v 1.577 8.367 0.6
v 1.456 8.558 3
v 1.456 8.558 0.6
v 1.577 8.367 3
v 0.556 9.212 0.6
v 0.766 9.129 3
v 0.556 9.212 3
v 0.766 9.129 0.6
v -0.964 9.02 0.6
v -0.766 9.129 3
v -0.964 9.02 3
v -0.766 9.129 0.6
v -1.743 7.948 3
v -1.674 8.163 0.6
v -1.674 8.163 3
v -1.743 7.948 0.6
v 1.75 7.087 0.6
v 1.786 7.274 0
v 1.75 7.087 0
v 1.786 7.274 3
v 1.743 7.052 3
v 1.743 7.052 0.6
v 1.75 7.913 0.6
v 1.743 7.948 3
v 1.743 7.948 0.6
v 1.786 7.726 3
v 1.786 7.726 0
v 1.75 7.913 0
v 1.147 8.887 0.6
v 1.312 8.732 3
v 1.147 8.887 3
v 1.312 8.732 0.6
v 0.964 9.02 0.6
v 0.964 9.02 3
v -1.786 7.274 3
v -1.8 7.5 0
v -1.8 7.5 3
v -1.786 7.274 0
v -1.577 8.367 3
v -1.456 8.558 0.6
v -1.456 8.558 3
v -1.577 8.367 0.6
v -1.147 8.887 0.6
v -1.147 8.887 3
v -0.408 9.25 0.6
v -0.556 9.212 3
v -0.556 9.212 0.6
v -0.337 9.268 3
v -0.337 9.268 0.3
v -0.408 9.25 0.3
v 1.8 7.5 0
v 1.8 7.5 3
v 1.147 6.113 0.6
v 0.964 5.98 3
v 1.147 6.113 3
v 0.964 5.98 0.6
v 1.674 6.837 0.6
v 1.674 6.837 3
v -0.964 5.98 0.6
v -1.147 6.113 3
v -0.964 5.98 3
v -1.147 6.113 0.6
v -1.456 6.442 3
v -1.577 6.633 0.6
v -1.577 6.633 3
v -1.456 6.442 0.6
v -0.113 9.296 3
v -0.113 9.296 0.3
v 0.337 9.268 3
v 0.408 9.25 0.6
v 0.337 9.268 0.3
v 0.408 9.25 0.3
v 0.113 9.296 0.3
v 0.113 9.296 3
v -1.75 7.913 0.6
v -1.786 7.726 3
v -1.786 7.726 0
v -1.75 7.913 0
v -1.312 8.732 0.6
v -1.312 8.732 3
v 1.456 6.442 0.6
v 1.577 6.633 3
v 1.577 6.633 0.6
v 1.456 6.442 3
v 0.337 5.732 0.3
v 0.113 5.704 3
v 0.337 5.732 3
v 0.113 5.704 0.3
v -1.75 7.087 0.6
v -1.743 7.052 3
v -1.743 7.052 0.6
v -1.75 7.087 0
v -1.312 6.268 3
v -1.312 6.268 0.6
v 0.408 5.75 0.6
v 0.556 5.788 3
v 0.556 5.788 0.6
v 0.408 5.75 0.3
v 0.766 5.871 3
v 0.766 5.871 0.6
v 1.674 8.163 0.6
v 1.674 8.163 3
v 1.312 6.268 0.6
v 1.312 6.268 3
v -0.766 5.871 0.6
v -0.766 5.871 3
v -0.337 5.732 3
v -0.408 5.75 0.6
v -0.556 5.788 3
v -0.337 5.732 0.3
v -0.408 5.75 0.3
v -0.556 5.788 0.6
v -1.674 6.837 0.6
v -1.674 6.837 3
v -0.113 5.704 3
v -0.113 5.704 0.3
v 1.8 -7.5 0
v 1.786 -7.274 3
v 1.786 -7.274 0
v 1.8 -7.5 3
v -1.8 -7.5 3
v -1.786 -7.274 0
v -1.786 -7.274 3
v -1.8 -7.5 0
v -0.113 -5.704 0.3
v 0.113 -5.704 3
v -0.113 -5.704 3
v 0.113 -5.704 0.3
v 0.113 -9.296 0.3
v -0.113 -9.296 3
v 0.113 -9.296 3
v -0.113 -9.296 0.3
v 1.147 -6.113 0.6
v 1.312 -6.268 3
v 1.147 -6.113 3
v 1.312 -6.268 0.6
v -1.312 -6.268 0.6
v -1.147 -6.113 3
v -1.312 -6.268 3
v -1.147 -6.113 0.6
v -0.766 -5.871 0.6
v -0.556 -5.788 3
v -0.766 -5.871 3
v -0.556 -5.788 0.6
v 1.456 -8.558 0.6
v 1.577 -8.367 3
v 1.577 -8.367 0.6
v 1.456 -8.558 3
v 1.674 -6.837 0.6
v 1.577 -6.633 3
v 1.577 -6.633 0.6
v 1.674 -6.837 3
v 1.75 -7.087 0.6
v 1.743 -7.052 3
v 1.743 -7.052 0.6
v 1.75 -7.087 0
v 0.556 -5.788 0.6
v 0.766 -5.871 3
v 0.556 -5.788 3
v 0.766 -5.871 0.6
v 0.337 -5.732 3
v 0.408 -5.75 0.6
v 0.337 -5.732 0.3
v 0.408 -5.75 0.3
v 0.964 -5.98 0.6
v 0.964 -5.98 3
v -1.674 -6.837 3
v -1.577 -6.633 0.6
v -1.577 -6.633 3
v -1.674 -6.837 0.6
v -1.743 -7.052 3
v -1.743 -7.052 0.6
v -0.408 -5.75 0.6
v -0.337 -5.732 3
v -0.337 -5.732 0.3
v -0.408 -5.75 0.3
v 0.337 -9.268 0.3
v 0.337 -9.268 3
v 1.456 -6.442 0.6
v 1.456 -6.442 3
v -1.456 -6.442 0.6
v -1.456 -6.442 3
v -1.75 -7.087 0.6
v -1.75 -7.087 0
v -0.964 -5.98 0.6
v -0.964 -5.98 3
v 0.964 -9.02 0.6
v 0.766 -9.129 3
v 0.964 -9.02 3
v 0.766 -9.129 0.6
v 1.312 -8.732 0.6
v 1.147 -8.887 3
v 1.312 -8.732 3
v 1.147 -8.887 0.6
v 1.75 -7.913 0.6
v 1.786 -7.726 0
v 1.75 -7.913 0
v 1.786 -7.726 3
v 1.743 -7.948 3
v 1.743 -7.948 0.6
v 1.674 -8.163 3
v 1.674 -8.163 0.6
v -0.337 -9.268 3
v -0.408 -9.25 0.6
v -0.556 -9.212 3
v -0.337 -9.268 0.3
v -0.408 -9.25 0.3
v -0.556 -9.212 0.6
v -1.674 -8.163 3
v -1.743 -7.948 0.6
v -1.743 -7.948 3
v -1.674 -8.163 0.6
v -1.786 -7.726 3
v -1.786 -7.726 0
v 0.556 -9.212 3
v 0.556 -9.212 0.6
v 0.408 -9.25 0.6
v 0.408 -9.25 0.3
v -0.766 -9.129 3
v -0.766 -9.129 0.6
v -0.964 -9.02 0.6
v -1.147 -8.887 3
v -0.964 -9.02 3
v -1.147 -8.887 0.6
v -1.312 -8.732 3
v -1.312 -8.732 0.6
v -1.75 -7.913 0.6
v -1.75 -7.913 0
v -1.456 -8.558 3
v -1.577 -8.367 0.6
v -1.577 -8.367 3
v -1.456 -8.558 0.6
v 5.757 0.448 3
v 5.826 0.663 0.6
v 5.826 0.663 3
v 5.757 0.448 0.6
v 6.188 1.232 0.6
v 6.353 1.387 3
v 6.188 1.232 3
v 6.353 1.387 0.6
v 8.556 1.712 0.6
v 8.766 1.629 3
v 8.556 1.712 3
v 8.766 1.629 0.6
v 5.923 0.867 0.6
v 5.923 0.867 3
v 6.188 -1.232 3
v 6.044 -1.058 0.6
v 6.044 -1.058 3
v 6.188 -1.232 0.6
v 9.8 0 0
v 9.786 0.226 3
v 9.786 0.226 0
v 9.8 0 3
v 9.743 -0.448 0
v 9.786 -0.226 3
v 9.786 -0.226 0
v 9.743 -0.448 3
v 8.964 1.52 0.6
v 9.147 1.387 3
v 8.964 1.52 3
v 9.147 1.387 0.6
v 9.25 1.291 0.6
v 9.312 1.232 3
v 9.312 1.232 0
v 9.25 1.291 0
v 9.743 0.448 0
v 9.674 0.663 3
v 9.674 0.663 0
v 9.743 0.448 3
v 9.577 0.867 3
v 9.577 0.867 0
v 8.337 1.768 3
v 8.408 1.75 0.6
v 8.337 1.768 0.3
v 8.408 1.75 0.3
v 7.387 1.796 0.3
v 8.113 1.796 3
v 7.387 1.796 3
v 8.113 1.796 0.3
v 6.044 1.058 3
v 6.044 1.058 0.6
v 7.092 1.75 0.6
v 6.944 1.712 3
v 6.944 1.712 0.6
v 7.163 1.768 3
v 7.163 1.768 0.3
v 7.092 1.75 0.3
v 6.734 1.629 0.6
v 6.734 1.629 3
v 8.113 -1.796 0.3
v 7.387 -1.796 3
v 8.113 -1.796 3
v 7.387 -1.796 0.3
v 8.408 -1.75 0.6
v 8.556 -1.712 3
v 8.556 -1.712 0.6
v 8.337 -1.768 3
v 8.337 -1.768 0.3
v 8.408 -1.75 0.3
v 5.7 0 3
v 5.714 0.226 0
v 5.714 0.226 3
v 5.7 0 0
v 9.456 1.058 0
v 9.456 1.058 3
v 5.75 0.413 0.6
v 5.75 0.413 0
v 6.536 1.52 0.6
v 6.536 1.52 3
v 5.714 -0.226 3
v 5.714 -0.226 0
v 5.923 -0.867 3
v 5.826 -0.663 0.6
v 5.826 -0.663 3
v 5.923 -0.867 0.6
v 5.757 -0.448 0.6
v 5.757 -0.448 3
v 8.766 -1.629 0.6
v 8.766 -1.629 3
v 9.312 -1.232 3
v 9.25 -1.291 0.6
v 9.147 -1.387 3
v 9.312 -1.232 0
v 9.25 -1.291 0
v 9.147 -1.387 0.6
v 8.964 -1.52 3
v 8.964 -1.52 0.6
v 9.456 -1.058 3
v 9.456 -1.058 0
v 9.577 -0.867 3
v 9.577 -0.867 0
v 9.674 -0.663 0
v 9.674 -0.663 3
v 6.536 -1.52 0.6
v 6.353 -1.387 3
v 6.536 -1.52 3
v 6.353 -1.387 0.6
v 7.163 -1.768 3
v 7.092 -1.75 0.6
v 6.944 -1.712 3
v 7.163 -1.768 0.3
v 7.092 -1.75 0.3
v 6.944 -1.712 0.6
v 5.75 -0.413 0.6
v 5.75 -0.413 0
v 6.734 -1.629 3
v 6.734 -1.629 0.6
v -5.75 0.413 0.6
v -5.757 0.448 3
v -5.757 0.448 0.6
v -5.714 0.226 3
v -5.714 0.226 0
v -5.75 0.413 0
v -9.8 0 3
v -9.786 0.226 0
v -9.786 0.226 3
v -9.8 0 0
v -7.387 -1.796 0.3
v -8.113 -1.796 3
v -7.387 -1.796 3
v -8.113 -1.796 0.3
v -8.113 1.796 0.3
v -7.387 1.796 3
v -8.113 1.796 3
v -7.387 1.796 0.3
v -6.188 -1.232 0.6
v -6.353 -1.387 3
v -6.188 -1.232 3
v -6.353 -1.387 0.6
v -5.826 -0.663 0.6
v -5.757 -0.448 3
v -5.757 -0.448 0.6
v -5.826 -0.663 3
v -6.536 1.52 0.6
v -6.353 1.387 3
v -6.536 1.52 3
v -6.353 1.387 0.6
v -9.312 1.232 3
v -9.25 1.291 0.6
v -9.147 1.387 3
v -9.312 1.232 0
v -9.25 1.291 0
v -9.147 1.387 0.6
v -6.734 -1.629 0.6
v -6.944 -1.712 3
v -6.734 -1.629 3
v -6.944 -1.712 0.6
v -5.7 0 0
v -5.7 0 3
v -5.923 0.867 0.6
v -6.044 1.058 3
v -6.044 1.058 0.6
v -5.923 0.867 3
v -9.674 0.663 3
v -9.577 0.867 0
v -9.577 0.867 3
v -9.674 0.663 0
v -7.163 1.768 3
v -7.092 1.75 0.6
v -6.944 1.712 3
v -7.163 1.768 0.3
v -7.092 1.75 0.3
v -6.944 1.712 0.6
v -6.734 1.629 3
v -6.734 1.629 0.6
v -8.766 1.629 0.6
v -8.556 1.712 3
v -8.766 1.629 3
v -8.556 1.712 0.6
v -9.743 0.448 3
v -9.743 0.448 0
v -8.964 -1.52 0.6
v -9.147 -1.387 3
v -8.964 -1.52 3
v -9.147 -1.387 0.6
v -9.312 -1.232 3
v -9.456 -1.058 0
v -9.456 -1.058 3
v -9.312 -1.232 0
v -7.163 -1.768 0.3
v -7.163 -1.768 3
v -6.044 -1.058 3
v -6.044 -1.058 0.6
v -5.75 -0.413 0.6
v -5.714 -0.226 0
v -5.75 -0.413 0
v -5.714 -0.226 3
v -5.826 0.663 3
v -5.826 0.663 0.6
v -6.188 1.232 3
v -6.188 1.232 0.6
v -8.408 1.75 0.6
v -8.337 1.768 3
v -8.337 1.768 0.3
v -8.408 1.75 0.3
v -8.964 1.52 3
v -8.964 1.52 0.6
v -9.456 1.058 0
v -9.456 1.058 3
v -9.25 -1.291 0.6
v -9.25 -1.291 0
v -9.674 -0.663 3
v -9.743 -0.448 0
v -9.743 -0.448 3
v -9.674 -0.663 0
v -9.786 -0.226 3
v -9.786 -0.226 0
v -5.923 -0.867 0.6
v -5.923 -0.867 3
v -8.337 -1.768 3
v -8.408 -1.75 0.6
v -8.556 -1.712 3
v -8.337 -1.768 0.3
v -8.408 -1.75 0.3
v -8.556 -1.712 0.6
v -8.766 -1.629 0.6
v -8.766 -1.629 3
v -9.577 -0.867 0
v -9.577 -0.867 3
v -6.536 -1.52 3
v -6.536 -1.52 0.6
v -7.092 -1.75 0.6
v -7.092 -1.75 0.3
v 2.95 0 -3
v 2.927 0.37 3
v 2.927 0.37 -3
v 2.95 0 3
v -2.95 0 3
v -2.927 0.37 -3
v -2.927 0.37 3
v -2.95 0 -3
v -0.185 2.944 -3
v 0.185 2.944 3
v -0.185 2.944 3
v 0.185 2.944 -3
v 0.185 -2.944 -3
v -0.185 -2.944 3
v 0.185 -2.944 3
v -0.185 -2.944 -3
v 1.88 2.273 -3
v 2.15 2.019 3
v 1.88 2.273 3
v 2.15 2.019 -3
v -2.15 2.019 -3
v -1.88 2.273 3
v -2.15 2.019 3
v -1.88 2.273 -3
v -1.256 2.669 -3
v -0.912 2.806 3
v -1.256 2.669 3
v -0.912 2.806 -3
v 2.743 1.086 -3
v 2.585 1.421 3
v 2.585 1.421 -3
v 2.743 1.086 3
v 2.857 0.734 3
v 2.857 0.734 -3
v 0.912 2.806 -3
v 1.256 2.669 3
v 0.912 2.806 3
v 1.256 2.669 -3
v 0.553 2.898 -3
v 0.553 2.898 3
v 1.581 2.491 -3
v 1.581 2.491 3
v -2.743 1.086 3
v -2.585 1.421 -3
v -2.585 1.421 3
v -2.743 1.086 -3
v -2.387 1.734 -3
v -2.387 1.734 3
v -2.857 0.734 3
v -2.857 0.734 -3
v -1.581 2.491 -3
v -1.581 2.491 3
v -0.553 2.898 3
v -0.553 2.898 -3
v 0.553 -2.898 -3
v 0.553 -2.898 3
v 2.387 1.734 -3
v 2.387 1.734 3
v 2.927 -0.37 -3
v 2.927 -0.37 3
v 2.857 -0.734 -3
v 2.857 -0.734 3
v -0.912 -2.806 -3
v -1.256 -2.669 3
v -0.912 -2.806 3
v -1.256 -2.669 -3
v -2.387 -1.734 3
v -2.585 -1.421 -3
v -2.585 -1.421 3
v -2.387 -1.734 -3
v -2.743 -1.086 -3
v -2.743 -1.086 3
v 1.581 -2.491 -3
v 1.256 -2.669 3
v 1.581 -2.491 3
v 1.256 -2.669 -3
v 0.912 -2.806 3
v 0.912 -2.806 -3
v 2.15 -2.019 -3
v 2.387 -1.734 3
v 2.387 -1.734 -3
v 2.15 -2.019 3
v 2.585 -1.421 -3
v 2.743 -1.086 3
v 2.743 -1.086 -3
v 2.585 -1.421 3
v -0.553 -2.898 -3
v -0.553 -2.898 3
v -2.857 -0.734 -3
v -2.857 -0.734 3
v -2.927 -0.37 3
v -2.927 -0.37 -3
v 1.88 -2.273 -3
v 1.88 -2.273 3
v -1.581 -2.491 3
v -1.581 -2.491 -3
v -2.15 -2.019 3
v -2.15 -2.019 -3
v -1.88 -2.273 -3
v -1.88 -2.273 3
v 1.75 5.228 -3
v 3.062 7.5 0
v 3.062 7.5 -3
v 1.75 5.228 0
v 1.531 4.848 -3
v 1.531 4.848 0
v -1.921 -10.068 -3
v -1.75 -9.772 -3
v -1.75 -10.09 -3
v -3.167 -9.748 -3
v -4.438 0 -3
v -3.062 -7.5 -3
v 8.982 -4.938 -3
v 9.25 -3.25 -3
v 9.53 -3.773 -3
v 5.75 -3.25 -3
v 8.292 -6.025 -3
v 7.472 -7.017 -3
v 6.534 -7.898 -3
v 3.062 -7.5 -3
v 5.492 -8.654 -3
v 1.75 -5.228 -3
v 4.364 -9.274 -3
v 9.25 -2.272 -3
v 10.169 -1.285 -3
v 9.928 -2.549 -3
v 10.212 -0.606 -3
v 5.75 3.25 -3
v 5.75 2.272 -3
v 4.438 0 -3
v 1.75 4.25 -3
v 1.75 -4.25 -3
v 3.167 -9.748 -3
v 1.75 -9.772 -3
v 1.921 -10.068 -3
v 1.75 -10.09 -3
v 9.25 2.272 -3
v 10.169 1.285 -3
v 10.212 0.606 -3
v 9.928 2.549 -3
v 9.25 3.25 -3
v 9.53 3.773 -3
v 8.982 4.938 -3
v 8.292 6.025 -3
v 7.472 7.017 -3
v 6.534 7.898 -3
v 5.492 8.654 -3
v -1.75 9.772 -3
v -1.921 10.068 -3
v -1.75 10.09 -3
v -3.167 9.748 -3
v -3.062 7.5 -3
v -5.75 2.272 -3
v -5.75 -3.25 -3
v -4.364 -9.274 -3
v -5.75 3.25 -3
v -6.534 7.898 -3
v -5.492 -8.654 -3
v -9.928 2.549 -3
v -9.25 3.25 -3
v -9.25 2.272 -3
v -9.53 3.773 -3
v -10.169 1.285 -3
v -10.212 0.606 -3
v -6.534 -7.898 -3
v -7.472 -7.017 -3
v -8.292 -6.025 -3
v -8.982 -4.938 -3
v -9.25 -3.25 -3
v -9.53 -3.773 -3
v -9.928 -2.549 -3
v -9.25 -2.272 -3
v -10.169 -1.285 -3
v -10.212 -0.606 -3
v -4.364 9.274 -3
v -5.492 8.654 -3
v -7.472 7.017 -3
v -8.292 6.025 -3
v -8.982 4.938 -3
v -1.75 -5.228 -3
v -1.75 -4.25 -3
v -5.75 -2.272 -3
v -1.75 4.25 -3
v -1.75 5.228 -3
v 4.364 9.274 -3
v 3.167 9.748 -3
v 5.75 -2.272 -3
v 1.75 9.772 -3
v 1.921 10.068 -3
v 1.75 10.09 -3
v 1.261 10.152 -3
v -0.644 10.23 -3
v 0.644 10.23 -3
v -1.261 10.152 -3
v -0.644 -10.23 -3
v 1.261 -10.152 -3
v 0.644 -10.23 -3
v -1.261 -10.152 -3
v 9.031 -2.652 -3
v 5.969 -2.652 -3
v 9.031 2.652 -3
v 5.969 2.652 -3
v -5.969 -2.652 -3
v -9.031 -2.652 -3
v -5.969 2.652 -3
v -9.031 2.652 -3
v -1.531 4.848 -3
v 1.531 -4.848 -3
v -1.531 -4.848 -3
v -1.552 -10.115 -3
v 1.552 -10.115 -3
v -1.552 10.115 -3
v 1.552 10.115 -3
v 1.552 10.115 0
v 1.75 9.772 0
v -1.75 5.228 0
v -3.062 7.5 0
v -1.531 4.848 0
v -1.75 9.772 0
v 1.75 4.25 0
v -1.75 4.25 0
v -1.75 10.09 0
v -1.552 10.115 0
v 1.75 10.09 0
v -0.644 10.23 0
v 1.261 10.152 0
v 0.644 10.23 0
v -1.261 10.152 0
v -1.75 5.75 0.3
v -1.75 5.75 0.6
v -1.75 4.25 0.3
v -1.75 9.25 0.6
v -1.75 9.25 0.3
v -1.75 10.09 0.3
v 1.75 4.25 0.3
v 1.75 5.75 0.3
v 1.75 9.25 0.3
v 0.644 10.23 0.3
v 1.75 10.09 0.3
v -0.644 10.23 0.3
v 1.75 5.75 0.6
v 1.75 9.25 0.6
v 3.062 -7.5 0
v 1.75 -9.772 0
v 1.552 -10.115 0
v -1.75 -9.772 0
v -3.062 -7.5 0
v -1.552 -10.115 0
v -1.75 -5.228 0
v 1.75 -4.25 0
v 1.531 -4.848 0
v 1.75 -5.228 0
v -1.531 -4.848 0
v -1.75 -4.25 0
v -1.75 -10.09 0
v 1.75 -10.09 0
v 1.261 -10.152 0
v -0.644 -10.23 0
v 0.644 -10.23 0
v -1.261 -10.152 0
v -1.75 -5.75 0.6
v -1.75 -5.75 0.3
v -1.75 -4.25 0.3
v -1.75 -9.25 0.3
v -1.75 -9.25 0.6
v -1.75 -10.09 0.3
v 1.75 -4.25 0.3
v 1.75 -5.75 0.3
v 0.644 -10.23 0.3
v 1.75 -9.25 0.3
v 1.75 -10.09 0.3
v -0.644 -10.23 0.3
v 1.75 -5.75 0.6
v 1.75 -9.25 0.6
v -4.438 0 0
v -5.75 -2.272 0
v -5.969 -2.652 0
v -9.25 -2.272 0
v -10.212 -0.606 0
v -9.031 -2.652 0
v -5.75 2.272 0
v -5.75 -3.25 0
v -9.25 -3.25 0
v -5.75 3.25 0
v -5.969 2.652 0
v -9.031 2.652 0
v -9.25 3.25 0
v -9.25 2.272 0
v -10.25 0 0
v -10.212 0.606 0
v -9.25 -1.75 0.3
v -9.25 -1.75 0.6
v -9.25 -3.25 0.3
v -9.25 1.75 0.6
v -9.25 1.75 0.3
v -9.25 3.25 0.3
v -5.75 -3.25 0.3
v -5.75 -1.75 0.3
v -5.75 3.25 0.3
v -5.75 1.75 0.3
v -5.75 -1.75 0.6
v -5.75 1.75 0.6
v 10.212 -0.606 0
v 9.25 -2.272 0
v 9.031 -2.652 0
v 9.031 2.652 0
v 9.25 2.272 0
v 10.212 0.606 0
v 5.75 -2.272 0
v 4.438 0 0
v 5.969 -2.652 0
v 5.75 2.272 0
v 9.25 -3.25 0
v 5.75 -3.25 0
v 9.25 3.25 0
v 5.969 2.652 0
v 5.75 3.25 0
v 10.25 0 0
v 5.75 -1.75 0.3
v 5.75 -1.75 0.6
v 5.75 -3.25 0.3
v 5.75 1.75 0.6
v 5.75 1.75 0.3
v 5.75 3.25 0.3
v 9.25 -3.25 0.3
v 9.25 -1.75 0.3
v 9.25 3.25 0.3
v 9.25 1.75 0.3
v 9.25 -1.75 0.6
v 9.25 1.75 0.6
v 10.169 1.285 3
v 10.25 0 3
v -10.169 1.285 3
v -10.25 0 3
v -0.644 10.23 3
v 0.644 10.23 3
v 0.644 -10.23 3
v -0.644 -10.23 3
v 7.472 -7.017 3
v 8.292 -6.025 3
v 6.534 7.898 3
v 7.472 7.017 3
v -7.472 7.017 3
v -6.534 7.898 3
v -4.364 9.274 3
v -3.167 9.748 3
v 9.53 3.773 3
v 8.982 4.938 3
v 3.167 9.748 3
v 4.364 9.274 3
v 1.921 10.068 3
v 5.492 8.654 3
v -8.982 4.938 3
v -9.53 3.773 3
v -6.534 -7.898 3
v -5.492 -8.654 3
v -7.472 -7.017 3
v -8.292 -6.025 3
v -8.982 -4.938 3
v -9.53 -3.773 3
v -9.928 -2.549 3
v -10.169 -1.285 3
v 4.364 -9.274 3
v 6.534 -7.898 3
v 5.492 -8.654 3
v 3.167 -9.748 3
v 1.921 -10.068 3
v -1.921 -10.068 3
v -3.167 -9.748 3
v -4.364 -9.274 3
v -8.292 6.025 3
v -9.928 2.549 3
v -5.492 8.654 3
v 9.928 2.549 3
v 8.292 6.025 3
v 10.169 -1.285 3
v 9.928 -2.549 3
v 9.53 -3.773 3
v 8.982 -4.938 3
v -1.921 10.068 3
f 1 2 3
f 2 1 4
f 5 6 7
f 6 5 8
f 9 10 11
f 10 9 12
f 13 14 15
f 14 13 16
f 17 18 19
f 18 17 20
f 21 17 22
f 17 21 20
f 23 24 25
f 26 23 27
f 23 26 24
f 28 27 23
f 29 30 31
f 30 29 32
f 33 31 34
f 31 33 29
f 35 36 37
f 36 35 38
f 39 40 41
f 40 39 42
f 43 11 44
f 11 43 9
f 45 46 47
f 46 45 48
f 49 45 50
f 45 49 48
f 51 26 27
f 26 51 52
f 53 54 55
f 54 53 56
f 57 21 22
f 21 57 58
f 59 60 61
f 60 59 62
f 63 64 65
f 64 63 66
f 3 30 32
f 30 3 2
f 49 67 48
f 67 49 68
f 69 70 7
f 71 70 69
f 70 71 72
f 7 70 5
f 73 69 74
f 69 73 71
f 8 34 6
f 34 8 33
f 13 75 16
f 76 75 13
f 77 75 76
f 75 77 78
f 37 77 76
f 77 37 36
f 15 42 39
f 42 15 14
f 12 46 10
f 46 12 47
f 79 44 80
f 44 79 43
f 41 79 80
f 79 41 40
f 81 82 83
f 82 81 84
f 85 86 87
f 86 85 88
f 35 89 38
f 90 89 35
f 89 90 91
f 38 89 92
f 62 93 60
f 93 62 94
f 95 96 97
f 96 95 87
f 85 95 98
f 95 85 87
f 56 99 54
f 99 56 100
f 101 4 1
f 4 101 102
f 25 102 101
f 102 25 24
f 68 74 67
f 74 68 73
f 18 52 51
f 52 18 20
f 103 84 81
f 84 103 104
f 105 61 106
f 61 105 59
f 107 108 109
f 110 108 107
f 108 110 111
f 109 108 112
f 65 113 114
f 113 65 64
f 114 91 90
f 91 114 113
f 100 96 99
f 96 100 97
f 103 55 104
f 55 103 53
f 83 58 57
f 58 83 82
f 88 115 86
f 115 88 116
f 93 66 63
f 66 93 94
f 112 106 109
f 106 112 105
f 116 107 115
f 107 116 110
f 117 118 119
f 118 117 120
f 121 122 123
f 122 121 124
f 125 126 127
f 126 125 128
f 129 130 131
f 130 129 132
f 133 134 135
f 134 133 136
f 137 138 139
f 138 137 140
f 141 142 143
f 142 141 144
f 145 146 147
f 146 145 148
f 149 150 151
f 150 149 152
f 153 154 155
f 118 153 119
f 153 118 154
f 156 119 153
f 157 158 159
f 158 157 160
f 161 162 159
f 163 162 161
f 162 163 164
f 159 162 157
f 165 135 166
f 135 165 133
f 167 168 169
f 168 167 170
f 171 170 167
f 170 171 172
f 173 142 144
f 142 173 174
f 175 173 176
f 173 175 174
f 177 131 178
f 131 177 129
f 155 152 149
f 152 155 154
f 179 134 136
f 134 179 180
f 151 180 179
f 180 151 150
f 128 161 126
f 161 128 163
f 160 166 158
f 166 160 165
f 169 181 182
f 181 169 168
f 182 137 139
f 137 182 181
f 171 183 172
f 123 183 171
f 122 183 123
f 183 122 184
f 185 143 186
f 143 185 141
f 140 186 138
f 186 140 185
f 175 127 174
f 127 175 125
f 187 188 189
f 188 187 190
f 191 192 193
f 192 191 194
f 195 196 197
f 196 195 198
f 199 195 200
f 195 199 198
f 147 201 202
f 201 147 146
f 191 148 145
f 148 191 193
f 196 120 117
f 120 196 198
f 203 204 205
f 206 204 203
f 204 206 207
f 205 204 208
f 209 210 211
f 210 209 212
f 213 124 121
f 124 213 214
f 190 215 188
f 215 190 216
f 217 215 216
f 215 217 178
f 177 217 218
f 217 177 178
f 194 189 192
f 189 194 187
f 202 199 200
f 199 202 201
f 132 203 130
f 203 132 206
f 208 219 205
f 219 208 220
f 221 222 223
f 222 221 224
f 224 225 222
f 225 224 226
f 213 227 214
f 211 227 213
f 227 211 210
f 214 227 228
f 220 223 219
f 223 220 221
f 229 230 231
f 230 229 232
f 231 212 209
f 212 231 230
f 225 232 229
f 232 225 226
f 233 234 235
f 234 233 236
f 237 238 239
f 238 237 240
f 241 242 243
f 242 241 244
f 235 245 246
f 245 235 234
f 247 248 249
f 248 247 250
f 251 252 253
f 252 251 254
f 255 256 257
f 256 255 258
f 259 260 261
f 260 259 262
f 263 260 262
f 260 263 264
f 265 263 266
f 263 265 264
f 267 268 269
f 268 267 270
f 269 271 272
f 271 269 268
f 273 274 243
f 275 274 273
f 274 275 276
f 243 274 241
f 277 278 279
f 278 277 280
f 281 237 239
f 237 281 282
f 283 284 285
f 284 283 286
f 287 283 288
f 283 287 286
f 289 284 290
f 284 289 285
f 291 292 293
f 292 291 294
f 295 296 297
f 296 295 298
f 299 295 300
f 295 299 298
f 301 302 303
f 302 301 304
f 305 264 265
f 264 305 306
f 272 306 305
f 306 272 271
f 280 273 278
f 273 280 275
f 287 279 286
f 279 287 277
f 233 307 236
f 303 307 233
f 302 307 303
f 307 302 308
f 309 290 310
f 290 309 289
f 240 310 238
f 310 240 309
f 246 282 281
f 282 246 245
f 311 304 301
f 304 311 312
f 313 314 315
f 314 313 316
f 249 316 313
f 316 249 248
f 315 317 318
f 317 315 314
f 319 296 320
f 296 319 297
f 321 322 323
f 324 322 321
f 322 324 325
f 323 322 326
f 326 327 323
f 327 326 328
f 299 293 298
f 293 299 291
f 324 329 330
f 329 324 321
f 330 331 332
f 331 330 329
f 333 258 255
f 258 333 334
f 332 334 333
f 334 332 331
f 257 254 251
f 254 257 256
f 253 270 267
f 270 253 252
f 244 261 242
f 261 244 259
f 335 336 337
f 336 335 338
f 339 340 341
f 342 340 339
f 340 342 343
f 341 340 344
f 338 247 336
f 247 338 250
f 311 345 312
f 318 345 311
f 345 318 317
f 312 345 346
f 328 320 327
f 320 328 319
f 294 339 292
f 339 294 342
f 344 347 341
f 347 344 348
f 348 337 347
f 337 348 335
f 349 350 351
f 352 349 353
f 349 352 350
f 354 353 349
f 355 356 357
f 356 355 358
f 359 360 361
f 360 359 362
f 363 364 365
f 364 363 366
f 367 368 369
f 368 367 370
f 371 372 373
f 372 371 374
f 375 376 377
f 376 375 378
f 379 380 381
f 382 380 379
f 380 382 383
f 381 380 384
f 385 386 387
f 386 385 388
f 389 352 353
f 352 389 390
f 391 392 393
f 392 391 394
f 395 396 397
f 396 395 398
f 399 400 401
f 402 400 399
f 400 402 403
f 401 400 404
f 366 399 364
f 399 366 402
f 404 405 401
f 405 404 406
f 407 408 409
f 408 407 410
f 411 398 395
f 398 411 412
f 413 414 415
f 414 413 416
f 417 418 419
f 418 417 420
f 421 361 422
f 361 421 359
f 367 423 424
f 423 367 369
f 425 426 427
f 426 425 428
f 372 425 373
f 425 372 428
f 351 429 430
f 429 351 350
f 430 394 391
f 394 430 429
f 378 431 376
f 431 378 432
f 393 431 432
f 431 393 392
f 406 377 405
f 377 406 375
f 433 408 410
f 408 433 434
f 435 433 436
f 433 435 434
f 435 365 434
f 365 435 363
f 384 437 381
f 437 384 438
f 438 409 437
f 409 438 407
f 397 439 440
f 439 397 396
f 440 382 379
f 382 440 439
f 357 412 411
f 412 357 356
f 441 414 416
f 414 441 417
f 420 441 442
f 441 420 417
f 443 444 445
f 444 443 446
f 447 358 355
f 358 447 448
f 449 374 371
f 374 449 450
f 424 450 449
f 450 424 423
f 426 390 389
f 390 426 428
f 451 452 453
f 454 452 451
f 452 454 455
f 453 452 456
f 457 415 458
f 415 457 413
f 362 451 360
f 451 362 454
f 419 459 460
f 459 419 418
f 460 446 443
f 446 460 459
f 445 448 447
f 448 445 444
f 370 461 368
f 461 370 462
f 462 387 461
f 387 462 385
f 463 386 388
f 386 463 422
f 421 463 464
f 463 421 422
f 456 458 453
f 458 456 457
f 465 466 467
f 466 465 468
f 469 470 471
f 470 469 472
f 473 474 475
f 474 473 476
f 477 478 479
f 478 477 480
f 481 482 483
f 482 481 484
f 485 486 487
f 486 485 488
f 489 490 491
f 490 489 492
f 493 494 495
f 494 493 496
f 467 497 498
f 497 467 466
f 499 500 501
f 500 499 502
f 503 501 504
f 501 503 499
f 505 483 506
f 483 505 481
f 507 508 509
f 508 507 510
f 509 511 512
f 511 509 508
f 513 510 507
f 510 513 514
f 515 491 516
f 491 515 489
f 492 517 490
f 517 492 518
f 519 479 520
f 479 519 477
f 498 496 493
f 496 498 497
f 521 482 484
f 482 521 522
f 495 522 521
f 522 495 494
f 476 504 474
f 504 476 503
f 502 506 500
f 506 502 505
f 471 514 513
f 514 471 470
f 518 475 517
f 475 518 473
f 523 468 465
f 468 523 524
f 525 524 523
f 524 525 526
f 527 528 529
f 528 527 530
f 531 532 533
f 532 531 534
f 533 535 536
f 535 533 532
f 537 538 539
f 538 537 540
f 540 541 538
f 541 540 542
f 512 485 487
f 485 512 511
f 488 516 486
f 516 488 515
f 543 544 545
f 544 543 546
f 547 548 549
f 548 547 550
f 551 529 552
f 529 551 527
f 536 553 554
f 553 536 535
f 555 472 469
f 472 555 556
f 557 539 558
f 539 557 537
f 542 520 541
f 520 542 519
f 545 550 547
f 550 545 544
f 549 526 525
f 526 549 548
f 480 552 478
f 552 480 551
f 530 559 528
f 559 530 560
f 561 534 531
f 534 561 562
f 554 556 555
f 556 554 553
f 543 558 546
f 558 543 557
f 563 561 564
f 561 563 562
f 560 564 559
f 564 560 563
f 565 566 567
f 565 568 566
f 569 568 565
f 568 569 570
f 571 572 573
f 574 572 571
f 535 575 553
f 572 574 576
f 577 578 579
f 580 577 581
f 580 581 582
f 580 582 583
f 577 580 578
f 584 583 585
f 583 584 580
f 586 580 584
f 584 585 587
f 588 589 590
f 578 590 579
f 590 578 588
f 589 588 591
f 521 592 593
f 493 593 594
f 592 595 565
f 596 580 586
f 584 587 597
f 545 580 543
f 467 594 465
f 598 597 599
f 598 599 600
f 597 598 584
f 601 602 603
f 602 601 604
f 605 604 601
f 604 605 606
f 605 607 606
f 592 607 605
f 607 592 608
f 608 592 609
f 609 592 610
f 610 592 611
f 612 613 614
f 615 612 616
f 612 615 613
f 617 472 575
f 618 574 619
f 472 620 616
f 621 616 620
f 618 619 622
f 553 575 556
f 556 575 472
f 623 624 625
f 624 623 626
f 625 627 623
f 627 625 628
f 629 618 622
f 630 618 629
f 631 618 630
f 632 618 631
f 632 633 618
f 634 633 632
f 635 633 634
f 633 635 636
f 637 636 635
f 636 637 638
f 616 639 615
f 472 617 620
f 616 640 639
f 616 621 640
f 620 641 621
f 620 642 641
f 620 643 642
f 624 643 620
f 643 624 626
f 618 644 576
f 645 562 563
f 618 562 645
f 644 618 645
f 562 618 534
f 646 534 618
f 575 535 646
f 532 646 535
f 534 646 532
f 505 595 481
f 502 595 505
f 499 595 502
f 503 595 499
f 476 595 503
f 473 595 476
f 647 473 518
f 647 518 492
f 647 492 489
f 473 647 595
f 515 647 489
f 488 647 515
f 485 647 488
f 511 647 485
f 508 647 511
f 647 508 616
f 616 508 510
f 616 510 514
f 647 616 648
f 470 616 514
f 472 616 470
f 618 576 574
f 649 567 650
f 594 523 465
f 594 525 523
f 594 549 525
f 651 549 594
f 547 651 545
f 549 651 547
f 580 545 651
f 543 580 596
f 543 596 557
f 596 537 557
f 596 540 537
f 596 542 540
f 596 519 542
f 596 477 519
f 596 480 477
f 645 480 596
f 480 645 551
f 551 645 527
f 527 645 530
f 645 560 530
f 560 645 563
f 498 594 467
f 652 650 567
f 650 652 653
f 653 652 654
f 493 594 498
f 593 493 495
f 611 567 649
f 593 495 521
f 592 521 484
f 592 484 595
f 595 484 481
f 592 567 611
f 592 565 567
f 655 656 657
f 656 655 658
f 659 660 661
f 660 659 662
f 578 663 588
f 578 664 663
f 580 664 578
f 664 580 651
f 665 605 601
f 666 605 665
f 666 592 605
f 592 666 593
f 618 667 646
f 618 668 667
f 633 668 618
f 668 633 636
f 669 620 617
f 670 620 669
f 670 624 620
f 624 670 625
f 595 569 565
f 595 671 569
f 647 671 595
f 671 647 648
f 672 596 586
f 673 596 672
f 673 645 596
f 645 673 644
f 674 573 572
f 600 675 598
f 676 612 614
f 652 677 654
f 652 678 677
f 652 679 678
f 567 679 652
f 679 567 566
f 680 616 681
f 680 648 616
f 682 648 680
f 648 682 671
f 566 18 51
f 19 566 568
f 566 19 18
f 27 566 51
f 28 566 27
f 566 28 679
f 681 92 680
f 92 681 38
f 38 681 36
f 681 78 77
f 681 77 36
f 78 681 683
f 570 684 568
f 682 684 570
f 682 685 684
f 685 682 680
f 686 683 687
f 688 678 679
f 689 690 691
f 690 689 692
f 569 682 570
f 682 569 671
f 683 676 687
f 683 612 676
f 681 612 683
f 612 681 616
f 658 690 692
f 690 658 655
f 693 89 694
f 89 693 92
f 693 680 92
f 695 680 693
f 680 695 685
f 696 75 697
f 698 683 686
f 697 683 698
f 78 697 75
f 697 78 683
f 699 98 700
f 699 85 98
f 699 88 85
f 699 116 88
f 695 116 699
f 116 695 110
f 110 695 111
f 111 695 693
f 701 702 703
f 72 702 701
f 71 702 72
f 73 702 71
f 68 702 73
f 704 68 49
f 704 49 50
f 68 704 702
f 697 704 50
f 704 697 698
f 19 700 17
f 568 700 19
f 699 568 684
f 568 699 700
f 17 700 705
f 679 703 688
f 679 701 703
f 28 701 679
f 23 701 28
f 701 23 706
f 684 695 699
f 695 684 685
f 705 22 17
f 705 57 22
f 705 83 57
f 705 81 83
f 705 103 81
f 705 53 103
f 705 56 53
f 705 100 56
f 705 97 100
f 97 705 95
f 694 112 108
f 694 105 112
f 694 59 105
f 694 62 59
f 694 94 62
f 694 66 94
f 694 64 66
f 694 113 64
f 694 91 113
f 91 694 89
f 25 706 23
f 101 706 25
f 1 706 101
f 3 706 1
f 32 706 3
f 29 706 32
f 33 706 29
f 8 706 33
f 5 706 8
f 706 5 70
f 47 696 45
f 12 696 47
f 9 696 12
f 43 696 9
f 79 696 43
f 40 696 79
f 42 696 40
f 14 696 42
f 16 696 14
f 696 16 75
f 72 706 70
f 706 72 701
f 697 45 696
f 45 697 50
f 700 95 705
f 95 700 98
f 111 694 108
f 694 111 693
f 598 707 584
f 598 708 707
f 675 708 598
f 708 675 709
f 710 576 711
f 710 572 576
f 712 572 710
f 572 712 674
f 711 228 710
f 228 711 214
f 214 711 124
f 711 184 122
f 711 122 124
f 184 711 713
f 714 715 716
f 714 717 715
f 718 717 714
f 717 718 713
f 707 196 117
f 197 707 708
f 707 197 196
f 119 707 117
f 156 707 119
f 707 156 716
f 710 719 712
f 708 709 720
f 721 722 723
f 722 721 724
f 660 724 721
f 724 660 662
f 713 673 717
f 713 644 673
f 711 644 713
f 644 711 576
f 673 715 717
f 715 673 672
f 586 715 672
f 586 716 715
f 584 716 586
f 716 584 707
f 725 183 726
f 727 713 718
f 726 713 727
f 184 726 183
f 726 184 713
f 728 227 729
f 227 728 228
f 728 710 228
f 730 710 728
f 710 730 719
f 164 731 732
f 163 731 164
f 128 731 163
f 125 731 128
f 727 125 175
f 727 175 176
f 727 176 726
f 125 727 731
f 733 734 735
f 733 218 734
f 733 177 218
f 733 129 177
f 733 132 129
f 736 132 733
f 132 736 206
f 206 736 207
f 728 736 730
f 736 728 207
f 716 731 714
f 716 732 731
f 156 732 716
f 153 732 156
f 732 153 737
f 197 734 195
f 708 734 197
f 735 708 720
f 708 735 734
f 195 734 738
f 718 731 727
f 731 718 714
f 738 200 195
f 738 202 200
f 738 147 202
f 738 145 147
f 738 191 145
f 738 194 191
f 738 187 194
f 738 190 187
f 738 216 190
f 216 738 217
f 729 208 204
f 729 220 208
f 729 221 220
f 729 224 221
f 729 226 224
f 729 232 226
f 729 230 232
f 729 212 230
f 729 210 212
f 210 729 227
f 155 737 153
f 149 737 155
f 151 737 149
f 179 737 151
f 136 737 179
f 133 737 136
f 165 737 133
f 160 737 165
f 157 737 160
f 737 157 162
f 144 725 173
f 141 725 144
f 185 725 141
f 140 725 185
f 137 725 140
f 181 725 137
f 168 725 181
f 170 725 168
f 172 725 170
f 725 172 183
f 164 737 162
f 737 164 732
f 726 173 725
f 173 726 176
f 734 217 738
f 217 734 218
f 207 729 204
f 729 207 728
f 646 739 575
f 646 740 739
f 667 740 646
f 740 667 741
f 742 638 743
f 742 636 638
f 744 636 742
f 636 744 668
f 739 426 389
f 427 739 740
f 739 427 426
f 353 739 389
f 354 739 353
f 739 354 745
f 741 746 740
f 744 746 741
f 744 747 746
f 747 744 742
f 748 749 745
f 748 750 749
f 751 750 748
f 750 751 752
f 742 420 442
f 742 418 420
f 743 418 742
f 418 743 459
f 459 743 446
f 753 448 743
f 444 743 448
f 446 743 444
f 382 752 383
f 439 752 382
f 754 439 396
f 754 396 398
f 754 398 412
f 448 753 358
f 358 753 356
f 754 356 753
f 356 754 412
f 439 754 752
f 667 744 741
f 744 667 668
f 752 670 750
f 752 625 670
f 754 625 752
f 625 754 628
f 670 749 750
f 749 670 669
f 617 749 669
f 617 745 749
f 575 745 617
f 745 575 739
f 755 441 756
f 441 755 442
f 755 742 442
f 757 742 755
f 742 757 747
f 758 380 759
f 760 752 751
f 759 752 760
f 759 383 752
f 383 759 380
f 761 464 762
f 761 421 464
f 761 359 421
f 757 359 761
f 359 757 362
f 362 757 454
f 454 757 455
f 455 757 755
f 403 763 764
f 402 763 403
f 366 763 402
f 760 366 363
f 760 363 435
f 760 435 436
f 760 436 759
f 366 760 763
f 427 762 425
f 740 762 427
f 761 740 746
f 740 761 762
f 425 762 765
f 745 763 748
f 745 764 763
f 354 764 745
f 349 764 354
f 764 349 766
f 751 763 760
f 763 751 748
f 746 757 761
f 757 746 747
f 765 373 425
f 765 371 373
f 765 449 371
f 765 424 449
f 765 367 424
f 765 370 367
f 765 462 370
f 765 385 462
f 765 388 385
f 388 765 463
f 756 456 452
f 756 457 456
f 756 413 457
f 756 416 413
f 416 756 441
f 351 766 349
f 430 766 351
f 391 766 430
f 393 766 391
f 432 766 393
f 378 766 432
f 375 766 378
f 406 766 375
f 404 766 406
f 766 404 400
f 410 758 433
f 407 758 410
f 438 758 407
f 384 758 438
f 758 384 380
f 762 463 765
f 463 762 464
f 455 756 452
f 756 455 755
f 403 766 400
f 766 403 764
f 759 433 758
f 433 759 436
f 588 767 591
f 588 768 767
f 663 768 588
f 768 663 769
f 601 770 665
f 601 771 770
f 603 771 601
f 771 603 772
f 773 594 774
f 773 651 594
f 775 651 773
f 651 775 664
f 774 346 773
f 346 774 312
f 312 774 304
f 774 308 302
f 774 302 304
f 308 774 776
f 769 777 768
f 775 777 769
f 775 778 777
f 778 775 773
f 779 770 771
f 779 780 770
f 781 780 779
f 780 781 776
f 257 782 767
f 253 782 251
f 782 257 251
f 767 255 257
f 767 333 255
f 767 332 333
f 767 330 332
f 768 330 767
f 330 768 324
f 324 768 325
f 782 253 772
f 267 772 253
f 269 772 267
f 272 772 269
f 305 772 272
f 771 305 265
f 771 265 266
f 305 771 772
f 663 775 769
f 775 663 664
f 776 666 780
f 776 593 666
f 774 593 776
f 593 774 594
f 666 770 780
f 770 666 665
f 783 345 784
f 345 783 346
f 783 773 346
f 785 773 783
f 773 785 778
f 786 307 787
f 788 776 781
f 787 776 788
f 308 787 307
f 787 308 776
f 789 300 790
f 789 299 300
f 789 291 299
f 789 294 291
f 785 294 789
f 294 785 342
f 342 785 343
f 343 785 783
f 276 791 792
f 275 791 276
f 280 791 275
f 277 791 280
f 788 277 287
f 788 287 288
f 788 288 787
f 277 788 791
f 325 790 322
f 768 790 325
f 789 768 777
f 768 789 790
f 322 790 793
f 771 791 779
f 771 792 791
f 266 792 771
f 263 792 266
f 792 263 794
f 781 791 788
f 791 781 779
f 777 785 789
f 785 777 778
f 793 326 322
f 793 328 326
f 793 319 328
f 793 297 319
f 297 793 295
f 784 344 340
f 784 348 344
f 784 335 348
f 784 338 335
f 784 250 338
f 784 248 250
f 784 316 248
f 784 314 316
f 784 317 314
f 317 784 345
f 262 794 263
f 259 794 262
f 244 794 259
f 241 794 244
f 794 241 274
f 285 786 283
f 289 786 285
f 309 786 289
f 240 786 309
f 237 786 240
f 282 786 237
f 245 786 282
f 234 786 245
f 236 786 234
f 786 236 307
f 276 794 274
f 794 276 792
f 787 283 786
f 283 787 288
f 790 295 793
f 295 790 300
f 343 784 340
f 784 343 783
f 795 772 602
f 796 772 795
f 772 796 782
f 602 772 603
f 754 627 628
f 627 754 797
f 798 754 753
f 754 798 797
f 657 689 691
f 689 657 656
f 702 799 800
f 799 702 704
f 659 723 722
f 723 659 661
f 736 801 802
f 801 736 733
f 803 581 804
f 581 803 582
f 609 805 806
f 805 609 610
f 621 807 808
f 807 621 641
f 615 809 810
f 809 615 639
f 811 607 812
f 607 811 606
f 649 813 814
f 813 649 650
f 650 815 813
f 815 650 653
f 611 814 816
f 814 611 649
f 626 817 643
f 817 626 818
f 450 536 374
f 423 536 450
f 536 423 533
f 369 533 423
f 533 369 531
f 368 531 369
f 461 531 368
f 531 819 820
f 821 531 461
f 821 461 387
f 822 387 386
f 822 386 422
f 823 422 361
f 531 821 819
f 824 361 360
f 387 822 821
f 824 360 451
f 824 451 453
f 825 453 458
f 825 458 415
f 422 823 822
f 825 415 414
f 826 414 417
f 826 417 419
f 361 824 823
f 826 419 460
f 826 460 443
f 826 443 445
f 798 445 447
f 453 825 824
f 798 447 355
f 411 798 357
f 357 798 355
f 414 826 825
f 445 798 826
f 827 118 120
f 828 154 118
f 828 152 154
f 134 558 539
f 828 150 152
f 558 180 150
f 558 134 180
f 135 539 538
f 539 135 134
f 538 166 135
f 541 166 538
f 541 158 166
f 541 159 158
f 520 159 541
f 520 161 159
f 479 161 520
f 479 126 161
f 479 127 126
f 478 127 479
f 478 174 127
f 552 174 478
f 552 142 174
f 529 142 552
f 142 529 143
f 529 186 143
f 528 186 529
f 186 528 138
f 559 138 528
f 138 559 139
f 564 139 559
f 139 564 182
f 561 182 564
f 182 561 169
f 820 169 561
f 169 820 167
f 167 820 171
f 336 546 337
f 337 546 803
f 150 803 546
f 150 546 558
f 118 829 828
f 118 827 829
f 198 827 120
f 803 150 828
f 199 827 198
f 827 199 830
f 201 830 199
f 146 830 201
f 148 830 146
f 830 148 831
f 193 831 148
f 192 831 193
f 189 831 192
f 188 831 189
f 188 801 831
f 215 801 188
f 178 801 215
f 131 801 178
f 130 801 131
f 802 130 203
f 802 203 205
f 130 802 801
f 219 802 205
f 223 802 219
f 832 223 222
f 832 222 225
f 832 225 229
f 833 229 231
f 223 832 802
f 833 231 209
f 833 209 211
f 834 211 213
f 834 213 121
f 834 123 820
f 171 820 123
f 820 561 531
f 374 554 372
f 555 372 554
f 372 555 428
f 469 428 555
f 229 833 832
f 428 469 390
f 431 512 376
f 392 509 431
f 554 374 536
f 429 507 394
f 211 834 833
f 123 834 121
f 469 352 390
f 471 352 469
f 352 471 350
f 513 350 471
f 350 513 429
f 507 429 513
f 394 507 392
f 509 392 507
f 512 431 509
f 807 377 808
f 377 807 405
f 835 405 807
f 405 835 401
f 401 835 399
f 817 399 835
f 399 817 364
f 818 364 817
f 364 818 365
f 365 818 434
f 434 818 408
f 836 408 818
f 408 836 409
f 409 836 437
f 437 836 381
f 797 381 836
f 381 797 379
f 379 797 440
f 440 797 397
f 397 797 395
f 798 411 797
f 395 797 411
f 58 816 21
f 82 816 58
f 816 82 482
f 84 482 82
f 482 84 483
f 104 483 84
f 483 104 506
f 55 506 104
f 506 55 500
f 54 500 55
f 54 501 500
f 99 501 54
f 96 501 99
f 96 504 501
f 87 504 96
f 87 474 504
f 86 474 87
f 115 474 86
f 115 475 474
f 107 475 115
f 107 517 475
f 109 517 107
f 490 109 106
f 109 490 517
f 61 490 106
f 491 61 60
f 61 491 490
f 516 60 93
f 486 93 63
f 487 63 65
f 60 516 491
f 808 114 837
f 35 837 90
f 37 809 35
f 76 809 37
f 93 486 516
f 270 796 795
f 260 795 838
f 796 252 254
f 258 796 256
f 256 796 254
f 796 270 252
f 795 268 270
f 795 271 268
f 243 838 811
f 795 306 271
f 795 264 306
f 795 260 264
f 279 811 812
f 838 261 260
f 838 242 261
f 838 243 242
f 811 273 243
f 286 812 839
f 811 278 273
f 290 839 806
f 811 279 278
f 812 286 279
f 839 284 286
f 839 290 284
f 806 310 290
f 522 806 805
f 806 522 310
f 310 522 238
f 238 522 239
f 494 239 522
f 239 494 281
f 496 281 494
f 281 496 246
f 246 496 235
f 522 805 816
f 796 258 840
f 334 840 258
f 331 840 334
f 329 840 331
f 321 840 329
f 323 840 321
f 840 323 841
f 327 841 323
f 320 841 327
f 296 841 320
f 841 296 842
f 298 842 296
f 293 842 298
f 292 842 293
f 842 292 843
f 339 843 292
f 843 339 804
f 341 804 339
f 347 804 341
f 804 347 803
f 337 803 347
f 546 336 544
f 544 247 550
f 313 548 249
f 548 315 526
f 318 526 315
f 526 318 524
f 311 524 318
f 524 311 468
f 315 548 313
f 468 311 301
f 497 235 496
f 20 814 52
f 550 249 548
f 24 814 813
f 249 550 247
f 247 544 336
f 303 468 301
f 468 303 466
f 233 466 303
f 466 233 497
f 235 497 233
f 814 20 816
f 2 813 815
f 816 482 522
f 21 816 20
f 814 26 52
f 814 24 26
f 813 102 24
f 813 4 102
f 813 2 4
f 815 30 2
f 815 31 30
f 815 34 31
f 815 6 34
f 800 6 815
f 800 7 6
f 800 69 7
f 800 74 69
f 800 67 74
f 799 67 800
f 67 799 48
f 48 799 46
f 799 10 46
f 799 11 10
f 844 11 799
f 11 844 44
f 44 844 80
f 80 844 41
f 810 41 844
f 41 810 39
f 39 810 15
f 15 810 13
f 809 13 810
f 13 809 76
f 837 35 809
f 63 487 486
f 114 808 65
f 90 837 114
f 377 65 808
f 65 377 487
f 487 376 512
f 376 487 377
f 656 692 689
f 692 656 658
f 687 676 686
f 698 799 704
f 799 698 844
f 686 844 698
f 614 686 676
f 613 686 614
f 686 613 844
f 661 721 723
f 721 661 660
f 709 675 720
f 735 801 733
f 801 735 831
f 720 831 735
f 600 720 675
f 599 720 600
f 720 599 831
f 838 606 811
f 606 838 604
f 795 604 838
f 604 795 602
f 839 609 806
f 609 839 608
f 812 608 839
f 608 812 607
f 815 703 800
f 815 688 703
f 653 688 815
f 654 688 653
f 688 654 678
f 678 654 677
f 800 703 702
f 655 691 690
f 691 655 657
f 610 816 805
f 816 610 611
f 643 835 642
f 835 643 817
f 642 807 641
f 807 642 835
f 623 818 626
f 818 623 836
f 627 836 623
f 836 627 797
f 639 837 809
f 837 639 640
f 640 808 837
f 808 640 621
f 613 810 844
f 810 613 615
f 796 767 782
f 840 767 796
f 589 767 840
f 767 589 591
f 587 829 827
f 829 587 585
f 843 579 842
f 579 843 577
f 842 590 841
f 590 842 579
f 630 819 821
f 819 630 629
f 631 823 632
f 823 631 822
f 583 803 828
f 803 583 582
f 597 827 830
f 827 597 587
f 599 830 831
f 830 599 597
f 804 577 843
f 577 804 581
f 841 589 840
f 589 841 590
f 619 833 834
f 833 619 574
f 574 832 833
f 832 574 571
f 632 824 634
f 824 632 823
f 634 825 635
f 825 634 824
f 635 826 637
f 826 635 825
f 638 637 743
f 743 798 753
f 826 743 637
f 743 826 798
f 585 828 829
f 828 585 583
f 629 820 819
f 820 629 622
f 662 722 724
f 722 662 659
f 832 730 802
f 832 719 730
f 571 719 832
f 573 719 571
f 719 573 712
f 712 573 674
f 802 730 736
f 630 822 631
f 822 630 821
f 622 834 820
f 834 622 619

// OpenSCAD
$fn = 50;


difference() {
	union() {
		translate(v = [0, 0, -3.0000000000]) {
			rotate(a = [0, 0, 0]) {
				cylinder(h = 6, r = 10.2500000000);
			}
		}
	}
	union() {
		translate(v = [0, 7.5000000000, -125.0000000000]) {
			rotate(a = [0, 0, 0]) {
				cylinder(h = 250, r = 1.8000000000);
			}
		}
		translate(v = [0, -7.5000000000, -125.0000000000]) {
			rotate(a = [0, 0, 0]) {
				cylinder(h = 250, r = 1.8000000000);
			}
		}
		translate(v = [7.7500000000, 0, -125.0000000000]) {
			rotate(a = [0, 0, 0]) {
				hull() {
					translate(v = [0.2500000000, 0, 0]) {
						rotate(a = [0, 0, 0]) {
							translate(v = [0, 0, 0]) {
								rotate(a = [0, 0, 0]) {
									cylinder(h = 250, r = 1.8000000000);
								}
							}
						}
					}
					translate(v = [-0.2500000000, 0, 0]) {
						rotate(a = [0, 0, 0]) {
							translate(v = [0, 0, 0]) {
								rotate(a = [0, 0, 0]) {
									cylinder(h = 250, r = 1.8000000000);
								}
							}
						}
					}
				}
			}
		}
		translate(v = [-7.7500000000, 0, -125.0000000000]) {
			rotate(a = [0, 0, 0]) {
				hull() {
					translate(v = [0.2500000000, 0, 0]) {
						rotate(a = [0, 0, 0]) {
							translate(v = [0, 0, 0]) {
								rotate(a = [0, 0, 0]) {
									cylinder(h = 250, r = 1.8000000000);
								}
							}
						}
					}
					translate(v = [-0.2500000000, 0, 0]) {
						rotate(a = [0, 0, 0]) {
							translate(v = [0, 0, 0]) {
								rotate(a = [0, 0, 0]) {
									cylinder(h = 250, r = 1.8000000000);
								}
							}
						}
					}
				}
			}
		}
		translate(v = [0, 0, -125.0000000000]) {
			rotate(a = [0, 0, 0]) {
				cylinder(h = 250, r = 2.9500000000);
			}
		}
		translate(v = [0, 7.5000000000, -3.0000000000]) {
			rotate(a = [0, 0, 0]) {
				translate(v = [0, 0, 0]) {
					rotate(a = [0, 0, 0]) {
						linear_extrude(height = 3) {
							polygon(points = [[3.0620000000, 0.0000000000], [1.5310000000, 2.6517697864], [-1.5310000000, 2.6517697864], [-3.0620000000, 0.0000000000], [-1.5310000000, -2.6517697864], [1.5310000000, -2.6517697864]]);
						}
					}
				}
			}
		}
		translate(v = [-1.7500000000, 4.2500000000, 0.0000000000]) {
			rotate(a = [0, 0, 0]) {
				cube(size = [3.5000000000, 6.5000000000, 0.3000000000]);
			}
		}
		translate(v = [-1.7500000000, 5.7500000000, 0.3000000000]) {
			rotate(a = [0, 0, 0]) {
				cube(size = [3.5000000000, 3.5000000000, 0.3000000000]);
			}
		}
		translate(v = [-1.7500000000, 4.2500000000, -3.3000000000]) {
			rotate(a = [0, 0, 0]) {
				cube(size = [3.5000000000, 6.5000000000, 0.3000000000]);
			}
		}
		translate(v = [-1.7500000000, 5.7500000000, -3.6000000000]) {
			rotate(a = [0, 0, 0]) {
				cube(size = [3.5000000000, 3.5000000000, 0.3000000000]);
			}
		}
		translate(v = [0, -7.5000000000, -3.0000000000]) {
			rotate(a = [0, 0, 0]) {
				translate(v = [0, 0, 0]) {
					rotate(a = [0, 0, 0]) {
						linear_extrude(height = 3) {
							polygon(points = [[3.0620000000, 0.0000000000], [1.5310000000, 2.6517697864], [-1.5310000000, 2.6517697864], [-3.0620000000, 0.0000000000], [-1.5310000000, -2.6517697864], [1.5310000000, -2.6517697864]]);
						}
					}
				}
			}
		}
		translate(v = [-1.7500000000, -10.7500000000, 0.0000000000]) {
			rotate(a = [0, 0, 0]) {
				cube(size = [3.5000000000, 6.5000000000, 0.3000000000]);
			}
		}
		translate(v = [-1.7500000000, -9.2500000000, 0.3000000000]) {
			rotate(a = [0, 0, 0]) {
				cube(size = [3.5000000000, 3.5000000000, 0.3000000000]);
			}
		}
		translate(v = [-1.7500000000, -10.7500000000, -3.3000000000]) {
			rotate(a = [0, 0, 0]) {
				cube(size = [3.5000000000, 6.5000000000, 0.3000000000]);
			}
		}
		translate(v = [-1.7500000000, -9.2500000000, -3.6000000000]) {
			rotate(a = [0, 0, 0]) {
				cube(size = [3.5000000000, 3.5000000000, 0.3000000000]);
			}
		}
		translate(v = [-7.5000000000, 0, -3.0000000000]) {
			rotate(a = [0, 0, 0]) {
				translate(v = [0, 0, 0]) {
					rotate(a = [0, 0, 0]) {
						linear_extrude(height = 3) {
							polygon(points = [[3.0620000000, 0.0000000000], [1.5310000000, 2.6517697864], [-1.5310000000, 2.6517697864], [-3.0620000000, 0.0000000000], [-1.5310000000, -2.6517697864], [1.5310000000, -2.6517697864]]);
						}
					}
				}
			}
		}
		translate(v = [-9.2500000000, -3.2500000000, 0.0000000000]) {
			rotate(a = [0, 0, 0]) {
				cube(size = [3.5000000000, 6.5000000000, 0.3000000000]);
			}
		}
		translate(v = [-9.2500000000, -1.7500000000, 0.3000000000]) {
			rotate(a = [0, 0, 0]) {
				cube(size = [3.5000000000, 3.5000000000, 0.3000000000]);
			}
		}
		translate(v = [-9.2500000000, -3.2500000000, -3.3000000000]) {
			rotate(a = [0, 0, 0]) {
				cube(size = [3.5000000000, 6.5000000000, 0.3000000000]);
			}
		}
		translate(v = [-9.2500000000, -1.7500000000, -3.6000000000]) {
			rotate(a = [0, 0, 0]) {
				cube(size = [3.5000000000, 3.5000000000, 0.3000000000]);
			}
		}
		translate(v = [7.5000000000, 0, -3.0000000000]) {
			rotate(a = [0, 0, 0]) {
				translate(v = [0, 0, 0]) {
					rotate(a = [0, 0, 0]) {
						linear_extrude(height = 3) {
							polygon(points = [[3.0620000000, 0.0000000000], [1.5310000000, 2.6517697864], [-1.5310000000, 2.6517697864], [-3.0620000000, 0.0000000000], [-1.5310000000, -2.6517697864], [1.5310000000, -2.6517697864]]);
						}
					}
				}
			}
		}
		translate(v = [5.7500000000, -3.2500000000, 0.0000000000]) {
			rotate(a = [0, 0, 0]) {
				cube(size = [3.5000000000, 6.5000000000, 0.3000000000]);
			}
		}
		translate(v = [5.7500000000, -1.7500000000, 0.3000000000]) {
			rotate(a = [0, 0, 0]) {
				cube(size = [3.5000000000, 3.5000000000, 0.3000000000]);
			}
		}
		translate(v = [5.7500000000, -3.2500000000, -3.3000000000]) {
			rotate(a = [0, 0, 0]) {
				cube(size = [3.5000000000, 6.5000000000, 0.3000000000]);
			}
		}
		translate(v = [5.7500000000, -1.7500000000, -3.6000000000]) {
			rotate(a = [0, 0, 0]) {
				cube(size = [3.5000000000, 3.5000000000, 0.3000000000]);
			}
		}
	}
}
